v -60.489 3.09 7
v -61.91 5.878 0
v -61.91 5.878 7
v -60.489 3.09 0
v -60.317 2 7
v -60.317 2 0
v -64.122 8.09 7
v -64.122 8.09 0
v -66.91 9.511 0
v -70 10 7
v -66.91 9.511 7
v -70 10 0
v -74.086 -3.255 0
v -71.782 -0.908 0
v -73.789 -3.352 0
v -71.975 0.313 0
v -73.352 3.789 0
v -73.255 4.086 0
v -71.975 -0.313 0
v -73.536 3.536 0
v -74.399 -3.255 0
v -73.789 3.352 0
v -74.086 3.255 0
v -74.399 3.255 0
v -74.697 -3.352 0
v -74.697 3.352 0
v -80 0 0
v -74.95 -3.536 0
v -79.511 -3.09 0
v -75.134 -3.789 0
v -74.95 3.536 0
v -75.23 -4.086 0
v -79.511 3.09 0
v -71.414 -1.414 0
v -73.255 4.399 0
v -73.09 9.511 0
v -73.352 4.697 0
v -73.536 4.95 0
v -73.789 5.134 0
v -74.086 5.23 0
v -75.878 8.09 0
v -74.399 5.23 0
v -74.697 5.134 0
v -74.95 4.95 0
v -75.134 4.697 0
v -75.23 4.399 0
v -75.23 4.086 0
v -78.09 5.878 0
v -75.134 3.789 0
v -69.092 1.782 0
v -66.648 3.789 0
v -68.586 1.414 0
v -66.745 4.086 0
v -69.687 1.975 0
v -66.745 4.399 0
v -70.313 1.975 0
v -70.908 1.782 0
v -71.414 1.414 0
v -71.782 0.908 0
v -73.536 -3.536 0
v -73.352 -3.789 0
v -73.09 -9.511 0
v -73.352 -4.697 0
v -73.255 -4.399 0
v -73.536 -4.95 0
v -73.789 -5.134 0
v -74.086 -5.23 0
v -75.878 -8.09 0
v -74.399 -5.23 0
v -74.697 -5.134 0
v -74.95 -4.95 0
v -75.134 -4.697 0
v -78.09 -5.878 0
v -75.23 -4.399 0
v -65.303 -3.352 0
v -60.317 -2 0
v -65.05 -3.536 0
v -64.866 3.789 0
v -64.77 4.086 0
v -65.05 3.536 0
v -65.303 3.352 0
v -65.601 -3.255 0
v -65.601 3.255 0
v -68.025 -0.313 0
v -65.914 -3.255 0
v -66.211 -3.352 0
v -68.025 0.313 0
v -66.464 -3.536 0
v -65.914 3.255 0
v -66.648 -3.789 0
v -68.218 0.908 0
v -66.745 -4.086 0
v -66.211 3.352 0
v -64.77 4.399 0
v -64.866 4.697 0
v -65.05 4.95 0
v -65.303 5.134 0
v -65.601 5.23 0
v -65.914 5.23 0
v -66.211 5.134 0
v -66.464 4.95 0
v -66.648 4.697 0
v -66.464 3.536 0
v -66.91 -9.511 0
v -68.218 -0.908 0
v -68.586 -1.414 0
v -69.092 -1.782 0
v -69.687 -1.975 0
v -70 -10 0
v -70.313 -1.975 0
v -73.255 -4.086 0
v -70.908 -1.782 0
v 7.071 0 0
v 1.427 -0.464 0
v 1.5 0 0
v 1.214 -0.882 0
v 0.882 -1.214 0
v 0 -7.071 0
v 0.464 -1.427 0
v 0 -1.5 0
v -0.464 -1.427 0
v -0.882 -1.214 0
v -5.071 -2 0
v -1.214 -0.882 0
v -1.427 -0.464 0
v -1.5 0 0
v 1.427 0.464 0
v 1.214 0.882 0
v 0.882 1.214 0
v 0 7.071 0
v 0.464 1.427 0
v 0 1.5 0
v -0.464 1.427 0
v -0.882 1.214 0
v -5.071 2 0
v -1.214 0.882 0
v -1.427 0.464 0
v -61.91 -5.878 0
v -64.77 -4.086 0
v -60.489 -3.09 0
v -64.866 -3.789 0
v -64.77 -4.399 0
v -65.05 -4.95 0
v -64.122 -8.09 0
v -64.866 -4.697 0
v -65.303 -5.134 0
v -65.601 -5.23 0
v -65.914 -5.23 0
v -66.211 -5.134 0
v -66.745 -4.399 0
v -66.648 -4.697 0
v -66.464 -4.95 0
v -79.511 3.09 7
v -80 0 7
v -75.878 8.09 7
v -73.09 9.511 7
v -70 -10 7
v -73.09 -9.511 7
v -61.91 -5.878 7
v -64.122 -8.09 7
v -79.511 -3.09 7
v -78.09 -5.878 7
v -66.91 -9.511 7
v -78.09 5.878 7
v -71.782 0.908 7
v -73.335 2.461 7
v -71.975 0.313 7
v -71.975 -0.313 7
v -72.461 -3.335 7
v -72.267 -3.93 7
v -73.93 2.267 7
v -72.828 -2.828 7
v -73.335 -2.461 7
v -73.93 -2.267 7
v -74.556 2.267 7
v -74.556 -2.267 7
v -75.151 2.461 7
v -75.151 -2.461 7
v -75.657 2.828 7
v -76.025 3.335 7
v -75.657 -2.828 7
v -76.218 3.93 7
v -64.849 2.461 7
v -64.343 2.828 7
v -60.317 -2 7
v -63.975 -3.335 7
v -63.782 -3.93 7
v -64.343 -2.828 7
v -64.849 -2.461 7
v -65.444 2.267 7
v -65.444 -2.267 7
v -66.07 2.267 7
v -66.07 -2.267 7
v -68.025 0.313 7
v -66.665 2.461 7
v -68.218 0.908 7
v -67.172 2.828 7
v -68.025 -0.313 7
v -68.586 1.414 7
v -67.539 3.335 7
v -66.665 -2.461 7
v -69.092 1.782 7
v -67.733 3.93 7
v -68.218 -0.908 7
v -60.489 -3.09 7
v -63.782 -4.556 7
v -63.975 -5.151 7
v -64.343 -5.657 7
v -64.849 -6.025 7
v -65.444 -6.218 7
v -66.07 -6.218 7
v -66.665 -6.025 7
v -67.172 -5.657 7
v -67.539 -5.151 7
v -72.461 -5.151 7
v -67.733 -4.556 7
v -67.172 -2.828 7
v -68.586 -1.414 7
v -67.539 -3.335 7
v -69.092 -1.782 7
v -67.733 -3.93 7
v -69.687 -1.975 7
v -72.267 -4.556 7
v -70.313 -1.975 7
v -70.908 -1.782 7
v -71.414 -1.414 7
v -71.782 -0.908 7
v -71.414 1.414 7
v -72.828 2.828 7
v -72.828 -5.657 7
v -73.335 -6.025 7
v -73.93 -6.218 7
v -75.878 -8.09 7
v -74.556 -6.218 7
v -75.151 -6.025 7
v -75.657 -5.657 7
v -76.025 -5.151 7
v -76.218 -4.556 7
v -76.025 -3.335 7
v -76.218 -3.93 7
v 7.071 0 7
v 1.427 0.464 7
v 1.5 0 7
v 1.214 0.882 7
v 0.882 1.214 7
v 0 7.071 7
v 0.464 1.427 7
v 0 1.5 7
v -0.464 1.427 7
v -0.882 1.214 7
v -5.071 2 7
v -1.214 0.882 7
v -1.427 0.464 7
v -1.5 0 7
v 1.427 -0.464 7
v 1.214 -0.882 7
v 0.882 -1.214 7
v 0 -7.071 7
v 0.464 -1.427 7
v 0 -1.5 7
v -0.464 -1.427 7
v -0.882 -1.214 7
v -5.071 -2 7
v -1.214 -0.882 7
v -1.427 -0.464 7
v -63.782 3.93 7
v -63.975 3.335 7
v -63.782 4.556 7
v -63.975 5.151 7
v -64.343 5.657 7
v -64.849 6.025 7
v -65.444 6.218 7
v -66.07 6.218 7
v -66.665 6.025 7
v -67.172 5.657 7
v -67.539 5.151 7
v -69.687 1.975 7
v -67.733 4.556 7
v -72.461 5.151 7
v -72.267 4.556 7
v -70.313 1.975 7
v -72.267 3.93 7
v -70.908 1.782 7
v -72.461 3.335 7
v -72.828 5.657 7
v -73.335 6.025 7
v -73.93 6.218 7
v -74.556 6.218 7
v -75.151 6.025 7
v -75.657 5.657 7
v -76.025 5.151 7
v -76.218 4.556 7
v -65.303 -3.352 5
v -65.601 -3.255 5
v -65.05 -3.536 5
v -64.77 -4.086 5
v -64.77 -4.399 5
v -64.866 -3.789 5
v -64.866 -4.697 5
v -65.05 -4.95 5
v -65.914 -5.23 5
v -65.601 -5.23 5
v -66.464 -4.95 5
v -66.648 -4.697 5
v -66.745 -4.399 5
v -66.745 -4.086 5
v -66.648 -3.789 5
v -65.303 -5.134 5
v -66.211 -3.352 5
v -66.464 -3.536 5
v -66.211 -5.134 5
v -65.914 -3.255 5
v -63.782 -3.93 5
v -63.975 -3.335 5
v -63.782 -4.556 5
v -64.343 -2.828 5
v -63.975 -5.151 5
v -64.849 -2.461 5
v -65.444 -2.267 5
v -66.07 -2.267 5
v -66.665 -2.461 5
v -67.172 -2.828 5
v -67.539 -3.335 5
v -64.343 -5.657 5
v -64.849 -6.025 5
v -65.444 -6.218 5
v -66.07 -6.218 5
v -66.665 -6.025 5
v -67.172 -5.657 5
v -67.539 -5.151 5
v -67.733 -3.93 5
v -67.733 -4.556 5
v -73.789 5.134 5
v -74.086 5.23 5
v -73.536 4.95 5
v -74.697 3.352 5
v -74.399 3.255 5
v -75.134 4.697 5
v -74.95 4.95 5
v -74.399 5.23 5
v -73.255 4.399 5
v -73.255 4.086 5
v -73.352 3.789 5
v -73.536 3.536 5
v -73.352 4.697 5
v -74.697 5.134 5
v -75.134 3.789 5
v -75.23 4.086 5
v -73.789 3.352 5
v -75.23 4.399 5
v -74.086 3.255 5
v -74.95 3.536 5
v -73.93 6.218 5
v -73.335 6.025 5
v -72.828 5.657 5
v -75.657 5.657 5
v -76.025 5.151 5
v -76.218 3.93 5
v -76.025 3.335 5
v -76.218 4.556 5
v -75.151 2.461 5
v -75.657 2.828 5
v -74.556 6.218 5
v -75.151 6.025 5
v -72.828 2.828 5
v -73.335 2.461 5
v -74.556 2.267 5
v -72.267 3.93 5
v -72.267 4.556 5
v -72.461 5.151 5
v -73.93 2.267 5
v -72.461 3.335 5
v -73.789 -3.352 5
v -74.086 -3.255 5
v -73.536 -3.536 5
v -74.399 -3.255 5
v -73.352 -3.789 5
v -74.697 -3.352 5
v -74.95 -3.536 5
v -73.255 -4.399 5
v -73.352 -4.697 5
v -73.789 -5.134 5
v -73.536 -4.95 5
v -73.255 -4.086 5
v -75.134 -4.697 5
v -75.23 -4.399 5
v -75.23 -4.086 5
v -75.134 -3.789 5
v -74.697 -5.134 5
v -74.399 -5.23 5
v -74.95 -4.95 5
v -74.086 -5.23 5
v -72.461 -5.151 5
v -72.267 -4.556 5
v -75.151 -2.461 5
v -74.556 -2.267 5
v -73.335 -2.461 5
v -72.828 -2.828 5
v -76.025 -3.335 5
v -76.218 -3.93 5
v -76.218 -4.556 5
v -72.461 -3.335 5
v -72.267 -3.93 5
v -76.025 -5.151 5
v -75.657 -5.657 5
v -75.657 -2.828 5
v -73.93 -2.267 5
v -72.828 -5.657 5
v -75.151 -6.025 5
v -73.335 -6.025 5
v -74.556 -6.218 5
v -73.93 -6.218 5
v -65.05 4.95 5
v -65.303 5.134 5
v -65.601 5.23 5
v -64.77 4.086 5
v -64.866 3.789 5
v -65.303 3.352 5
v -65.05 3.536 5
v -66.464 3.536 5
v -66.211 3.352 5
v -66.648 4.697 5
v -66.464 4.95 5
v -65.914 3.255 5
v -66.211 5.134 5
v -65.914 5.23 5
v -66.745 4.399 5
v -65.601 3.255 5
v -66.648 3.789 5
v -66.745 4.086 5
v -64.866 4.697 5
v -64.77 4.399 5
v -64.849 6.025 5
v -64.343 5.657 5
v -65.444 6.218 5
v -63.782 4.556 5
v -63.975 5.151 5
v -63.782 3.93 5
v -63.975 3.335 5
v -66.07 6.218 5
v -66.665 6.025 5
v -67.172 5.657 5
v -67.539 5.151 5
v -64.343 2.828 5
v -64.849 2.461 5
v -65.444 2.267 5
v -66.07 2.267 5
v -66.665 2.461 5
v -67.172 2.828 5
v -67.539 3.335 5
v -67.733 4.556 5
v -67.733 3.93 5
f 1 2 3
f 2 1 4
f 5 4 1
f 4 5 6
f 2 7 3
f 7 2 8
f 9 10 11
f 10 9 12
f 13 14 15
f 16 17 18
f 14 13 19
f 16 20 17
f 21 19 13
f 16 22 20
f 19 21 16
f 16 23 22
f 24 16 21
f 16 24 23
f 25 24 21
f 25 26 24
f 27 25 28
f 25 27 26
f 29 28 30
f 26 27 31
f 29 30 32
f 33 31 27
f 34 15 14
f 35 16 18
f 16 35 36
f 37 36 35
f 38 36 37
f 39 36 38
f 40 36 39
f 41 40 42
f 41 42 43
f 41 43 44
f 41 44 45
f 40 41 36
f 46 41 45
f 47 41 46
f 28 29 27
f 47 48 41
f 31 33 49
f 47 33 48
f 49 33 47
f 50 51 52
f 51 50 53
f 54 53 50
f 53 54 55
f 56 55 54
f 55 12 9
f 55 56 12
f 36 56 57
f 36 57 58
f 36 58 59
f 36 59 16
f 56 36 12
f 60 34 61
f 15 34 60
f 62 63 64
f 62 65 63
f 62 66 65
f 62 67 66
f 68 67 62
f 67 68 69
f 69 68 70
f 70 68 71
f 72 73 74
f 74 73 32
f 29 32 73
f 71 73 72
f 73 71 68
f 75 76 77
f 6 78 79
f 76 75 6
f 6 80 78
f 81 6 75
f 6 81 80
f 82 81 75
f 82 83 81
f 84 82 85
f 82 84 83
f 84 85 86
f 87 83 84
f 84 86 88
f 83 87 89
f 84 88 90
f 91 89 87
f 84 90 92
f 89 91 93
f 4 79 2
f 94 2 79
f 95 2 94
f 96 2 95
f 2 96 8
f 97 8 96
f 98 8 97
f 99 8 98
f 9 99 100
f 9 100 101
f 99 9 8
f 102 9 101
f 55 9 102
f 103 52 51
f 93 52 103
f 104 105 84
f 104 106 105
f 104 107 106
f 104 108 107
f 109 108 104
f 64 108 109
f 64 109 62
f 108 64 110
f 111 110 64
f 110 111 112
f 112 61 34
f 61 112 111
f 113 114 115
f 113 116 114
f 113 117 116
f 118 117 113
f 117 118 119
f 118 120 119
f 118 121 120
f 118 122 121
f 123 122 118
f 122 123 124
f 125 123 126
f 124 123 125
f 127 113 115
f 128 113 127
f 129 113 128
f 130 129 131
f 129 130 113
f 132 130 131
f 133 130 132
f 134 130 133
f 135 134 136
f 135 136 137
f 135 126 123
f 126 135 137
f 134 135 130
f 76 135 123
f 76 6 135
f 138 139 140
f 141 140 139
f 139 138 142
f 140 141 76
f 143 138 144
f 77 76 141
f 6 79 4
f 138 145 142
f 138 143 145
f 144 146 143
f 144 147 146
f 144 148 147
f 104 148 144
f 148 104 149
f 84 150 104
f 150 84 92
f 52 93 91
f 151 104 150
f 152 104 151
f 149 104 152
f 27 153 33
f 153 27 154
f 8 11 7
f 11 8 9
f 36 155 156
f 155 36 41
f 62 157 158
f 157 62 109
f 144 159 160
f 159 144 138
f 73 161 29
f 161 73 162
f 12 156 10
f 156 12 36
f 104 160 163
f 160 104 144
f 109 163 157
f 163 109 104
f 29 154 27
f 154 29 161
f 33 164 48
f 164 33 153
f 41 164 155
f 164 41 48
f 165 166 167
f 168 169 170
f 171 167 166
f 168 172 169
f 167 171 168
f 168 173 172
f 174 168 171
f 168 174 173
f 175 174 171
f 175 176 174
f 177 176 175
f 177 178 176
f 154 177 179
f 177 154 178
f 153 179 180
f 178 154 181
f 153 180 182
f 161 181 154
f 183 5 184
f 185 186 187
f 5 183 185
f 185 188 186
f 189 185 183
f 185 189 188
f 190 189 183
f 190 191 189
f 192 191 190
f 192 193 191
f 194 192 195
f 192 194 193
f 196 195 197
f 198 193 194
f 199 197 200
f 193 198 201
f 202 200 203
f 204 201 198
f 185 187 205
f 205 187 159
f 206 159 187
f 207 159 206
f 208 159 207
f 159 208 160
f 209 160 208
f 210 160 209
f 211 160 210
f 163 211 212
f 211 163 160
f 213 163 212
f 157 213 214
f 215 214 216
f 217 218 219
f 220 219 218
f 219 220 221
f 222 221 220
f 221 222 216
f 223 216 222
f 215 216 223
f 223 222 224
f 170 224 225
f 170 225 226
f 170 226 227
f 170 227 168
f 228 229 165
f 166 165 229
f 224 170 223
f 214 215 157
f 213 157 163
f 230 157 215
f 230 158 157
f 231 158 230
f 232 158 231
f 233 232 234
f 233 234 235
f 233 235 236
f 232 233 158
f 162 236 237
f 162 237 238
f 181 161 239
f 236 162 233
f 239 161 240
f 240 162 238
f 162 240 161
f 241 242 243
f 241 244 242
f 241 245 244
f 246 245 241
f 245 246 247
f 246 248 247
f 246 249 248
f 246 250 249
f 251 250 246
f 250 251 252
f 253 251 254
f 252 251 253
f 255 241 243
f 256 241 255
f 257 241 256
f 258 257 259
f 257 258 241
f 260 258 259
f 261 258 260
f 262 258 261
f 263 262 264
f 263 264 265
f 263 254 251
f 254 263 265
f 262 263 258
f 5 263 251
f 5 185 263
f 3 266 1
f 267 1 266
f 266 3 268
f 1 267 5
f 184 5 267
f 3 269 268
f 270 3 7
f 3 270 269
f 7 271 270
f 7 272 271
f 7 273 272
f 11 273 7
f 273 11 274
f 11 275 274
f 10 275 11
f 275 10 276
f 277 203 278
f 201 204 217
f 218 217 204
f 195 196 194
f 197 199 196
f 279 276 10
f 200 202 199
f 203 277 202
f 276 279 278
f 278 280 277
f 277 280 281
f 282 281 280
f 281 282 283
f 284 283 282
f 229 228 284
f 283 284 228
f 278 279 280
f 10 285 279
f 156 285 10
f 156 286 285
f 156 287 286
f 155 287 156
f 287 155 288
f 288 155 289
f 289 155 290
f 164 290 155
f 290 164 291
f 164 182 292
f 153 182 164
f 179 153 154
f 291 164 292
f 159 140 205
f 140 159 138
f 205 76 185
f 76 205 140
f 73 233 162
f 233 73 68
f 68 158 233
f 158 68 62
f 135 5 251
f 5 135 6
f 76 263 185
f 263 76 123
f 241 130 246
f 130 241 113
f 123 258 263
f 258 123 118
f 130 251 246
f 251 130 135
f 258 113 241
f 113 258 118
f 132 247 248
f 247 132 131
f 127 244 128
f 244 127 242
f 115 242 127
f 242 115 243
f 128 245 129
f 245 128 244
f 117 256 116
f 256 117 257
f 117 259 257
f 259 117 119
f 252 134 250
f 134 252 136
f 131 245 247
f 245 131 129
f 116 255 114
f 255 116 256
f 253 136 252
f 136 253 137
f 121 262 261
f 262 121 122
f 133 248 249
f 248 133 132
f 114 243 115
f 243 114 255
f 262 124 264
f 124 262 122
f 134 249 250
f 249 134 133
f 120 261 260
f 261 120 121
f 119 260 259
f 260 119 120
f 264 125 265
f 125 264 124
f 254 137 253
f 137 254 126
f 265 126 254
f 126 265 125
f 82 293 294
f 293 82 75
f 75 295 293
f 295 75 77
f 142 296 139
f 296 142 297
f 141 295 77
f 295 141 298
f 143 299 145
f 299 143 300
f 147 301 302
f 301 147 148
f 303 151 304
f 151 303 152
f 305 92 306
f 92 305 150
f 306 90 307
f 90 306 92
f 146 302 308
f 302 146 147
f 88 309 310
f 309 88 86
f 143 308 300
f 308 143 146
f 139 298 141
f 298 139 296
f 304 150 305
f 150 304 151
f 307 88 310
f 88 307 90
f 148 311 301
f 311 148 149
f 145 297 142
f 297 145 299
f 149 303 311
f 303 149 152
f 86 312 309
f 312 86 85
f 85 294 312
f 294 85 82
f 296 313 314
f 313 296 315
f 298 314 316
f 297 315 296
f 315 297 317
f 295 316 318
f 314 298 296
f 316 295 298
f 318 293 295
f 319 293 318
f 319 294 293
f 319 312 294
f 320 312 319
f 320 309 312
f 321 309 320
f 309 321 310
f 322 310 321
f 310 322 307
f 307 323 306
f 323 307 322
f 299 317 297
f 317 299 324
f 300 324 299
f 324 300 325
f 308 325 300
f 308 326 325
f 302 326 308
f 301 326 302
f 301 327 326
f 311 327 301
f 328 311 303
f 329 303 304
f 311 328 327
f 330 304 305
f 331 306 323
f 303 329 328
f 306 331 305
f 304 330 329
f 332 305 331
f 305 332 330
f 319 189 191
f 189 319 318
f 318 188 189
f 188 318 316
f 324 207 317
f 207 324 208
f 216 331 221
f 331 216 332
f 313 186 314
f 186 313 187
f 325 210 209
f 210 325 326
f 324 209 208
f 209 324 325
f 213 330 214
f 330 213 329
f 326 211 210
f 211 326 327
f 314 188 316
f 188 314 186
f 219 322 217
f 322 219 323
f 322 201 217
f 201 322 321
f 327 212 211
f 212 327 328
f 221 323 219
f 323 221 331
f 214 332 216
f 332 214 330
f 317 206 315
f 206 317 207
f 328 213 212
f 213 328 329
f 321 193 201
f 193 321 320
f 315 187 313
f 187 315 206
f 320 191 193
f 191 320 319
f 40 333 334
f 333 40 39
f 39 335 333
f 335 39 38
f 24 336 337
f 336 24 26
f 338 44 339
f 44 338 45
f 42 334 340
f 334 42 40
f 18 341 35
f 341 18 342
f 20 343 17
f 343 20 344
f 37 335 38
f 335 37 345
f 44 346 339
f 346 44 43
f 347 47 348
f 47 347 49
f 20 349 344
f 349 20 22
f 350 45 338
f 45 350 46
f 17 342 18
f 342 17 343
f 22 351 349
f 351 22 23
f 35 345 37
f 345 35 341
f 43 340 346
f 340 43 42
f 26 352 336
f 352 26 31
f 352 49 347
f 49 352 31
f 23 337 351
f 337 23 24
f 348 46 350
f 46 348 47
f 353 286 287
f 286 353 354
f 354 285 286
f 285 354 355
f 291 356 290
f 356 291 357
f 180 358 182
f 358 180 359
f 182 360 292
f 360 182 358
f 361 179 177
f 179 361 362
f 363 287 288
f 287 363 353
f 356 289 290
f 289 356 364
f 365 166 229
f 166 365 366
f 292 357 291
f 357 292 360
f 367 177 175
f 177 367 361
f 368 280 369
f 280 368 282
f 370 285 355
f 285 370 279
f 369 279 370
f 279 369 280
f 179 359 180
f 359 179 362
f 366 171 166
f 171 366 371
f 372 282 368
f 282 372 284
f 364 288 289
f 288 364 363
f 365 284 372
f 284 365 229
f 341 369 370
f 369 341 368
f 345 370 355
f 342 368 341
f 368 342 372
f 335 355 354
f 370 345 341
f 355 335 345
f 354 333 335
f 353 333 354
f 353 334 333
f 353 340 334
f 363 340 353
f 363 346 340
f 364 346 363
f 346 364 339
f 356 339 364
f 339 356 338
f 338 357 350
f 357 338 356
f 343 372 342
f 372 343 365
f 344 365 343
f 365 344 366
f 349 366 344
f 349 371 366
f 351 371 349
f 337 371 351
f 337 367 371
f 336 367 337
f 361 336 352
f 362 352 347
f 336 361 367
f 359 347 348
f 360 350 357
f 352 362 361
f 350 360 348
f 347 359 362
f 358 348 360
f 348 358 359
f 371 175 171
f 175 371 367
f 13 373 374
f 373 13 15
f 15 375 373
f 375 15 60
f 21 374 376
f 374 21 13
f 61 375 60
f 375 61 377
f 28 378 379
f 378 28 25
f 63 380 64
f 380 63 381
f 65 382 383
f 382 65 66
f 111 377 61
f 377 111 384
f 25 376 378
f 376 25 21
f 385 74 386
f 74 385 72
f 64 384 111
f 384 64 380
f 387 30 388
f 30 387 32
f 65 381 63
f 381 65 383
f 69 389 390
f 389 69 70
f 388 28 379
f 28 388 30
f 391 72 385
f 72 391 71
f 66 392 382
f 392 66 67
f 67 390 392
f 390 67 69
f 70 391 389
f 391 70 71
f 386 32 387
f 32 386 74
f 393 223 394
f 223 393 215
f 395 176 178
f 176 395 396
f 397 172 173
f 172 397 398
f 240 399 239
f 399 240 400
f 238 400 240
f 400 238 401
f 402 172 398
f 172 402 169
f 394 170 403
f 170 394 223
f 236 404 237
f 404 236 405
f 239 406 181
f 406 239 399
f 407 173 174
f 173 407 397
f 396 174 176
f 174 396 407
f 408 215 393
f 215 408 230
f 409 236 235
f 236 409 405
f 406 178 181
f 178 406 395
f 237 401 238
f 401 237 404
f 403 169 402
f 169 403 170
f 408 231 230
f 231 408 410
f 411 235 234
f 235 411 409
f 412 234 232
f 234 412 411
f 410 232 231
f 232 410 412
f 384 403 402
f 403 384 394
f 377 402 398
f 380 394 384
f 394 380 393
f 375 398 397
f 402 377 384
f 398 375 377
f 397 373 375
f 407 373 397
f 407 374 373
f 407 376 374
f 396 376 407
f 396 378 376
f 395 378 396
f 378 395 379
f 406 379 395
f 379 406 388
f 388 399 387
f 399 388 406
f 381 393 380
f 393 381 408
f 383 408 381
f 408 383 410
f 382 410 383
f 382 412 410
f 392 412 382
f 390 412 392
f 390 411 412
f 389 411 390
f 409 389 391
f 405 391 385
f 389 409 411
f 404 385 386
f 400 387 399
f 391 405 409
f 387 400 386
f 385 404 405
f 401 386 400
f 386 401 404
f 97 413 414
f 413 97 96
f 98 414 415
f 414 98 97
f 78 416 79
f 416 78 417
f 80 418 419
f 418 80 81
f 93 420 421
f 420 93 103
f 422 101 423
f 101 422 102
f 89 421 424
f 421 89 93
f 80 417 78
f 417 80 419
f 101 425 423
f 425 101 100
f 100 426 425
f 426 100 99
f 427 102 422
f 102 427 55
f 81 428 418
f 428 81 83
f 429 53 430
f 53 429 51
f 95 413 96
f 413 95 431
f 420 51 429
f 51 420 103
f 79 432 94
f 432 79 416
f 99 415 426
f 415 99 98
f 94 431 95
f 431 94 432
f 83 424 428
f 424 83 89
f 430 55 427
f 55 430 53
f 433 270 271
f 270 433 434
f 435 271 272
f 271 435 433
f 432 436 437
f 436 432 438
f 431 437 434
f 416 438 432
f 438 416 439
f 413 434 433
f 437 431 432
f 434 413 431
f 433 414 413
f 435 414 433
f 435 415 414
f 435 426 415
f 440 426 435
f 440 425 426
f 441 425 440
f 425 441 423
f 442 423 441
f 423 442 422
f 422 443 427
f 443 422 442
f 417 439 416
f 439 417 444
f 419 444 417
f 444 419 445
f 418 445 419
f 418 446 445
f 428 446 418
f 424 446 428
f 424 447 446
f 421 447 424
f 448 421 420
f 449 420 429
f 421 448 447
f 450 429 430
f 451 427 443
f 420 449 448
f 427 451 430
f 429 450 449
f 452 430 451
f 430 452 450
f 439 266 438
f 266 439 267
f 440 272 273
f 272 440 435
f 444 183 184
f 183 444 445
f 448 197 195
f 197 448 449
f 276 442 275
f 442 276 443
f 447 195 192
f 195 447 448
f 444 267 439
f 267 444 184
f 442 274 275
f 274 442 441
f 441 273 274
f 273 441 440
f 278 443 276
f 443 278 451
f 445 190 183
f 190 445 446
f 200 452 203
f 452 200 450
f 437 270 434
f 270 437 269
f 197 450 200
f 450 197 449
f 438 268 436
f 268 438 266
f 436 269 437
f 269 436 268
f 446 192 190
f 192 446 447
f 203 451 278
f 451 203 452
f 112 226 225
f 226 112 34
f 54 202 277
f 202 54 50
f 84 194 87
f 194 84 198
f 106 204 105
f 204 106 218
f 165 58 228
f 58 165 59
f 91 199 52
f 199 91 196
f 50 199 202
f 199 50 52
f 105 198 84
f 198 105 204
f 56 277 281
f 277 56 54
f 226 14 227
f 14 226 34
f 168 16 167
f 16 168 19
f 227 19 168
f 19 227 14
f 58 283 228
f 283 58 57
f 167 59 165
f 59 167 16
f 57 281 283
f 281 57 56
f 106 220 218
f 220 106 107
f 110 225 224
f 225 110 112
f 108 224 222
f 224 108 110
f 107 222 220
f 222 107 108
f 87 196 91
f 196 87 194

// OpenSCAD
fn = 20;
hole_spc = 12;
h = 7;
w = 10;
l = 70;


module motor_holes() {
    translate([0, -hole_spc/2, 0])
        cylinder(h, 1, 1, $fn=fn);
    translate([0, -hole_spc/2, h-2])
        cylinder(2, 2, 2, $fn=fn);
    
    translate([0, hole_spc/2, 0])
        cylinder(h, 1, 1, $fn=fn);
    translate([0, hole_spc/2, h-2])
        cylinder(2, 2, 2, $fn=fn);
    
    translate([-hole_spc/2, 0, 0])
        cylinder(h, 1, 1, $fn=fn);
    translate([-hole_spc/2, 0, h-2])
        cylinder(2, 2, 2, $fn=fn);
    
    translate([hole_spc/2, 0, 0])
        cylinder(h, 1, 1, $fn=fn);
    translate([hole_spc/2, 0, h-2])
        cylinder(2, 2, 2, $fn=fn);
    
    //motor bearing
    cylinder(h, 2, 2, $fn=fn);
}

module mount_arm() {
    difference() {
        union(){
            cylinder(h, 10, 10, $fn=fn);
            translate([0, -2, 0])
                cube([l, 4, h]);
            translate([l, 0, 0])
                rotate([0,0,45])
                    translate([-w/2, -w/2, 0])
                    cube([w, w, h]); // 18mm 
        }
        // body attachemnt pin hole
        translate([l, 0, 0])
            cylinder(h=h, d=3, $fn=fn);
    }
    
}

module motor_mount_arm_part() {
    translate([-l,0,0])
    difference(){
        mount_arm();
        rotate([0,0,45])
            motor_holes();

        
        translate([65, -hole_spc/2, 0])
            cylinder(h, 1, 1, $fn=fn);
        translate([65, hole_spc/2, 0])
            cylinder(h, 1, 1, $fn=fn);
    }
}

motor_mount_arm_part();
